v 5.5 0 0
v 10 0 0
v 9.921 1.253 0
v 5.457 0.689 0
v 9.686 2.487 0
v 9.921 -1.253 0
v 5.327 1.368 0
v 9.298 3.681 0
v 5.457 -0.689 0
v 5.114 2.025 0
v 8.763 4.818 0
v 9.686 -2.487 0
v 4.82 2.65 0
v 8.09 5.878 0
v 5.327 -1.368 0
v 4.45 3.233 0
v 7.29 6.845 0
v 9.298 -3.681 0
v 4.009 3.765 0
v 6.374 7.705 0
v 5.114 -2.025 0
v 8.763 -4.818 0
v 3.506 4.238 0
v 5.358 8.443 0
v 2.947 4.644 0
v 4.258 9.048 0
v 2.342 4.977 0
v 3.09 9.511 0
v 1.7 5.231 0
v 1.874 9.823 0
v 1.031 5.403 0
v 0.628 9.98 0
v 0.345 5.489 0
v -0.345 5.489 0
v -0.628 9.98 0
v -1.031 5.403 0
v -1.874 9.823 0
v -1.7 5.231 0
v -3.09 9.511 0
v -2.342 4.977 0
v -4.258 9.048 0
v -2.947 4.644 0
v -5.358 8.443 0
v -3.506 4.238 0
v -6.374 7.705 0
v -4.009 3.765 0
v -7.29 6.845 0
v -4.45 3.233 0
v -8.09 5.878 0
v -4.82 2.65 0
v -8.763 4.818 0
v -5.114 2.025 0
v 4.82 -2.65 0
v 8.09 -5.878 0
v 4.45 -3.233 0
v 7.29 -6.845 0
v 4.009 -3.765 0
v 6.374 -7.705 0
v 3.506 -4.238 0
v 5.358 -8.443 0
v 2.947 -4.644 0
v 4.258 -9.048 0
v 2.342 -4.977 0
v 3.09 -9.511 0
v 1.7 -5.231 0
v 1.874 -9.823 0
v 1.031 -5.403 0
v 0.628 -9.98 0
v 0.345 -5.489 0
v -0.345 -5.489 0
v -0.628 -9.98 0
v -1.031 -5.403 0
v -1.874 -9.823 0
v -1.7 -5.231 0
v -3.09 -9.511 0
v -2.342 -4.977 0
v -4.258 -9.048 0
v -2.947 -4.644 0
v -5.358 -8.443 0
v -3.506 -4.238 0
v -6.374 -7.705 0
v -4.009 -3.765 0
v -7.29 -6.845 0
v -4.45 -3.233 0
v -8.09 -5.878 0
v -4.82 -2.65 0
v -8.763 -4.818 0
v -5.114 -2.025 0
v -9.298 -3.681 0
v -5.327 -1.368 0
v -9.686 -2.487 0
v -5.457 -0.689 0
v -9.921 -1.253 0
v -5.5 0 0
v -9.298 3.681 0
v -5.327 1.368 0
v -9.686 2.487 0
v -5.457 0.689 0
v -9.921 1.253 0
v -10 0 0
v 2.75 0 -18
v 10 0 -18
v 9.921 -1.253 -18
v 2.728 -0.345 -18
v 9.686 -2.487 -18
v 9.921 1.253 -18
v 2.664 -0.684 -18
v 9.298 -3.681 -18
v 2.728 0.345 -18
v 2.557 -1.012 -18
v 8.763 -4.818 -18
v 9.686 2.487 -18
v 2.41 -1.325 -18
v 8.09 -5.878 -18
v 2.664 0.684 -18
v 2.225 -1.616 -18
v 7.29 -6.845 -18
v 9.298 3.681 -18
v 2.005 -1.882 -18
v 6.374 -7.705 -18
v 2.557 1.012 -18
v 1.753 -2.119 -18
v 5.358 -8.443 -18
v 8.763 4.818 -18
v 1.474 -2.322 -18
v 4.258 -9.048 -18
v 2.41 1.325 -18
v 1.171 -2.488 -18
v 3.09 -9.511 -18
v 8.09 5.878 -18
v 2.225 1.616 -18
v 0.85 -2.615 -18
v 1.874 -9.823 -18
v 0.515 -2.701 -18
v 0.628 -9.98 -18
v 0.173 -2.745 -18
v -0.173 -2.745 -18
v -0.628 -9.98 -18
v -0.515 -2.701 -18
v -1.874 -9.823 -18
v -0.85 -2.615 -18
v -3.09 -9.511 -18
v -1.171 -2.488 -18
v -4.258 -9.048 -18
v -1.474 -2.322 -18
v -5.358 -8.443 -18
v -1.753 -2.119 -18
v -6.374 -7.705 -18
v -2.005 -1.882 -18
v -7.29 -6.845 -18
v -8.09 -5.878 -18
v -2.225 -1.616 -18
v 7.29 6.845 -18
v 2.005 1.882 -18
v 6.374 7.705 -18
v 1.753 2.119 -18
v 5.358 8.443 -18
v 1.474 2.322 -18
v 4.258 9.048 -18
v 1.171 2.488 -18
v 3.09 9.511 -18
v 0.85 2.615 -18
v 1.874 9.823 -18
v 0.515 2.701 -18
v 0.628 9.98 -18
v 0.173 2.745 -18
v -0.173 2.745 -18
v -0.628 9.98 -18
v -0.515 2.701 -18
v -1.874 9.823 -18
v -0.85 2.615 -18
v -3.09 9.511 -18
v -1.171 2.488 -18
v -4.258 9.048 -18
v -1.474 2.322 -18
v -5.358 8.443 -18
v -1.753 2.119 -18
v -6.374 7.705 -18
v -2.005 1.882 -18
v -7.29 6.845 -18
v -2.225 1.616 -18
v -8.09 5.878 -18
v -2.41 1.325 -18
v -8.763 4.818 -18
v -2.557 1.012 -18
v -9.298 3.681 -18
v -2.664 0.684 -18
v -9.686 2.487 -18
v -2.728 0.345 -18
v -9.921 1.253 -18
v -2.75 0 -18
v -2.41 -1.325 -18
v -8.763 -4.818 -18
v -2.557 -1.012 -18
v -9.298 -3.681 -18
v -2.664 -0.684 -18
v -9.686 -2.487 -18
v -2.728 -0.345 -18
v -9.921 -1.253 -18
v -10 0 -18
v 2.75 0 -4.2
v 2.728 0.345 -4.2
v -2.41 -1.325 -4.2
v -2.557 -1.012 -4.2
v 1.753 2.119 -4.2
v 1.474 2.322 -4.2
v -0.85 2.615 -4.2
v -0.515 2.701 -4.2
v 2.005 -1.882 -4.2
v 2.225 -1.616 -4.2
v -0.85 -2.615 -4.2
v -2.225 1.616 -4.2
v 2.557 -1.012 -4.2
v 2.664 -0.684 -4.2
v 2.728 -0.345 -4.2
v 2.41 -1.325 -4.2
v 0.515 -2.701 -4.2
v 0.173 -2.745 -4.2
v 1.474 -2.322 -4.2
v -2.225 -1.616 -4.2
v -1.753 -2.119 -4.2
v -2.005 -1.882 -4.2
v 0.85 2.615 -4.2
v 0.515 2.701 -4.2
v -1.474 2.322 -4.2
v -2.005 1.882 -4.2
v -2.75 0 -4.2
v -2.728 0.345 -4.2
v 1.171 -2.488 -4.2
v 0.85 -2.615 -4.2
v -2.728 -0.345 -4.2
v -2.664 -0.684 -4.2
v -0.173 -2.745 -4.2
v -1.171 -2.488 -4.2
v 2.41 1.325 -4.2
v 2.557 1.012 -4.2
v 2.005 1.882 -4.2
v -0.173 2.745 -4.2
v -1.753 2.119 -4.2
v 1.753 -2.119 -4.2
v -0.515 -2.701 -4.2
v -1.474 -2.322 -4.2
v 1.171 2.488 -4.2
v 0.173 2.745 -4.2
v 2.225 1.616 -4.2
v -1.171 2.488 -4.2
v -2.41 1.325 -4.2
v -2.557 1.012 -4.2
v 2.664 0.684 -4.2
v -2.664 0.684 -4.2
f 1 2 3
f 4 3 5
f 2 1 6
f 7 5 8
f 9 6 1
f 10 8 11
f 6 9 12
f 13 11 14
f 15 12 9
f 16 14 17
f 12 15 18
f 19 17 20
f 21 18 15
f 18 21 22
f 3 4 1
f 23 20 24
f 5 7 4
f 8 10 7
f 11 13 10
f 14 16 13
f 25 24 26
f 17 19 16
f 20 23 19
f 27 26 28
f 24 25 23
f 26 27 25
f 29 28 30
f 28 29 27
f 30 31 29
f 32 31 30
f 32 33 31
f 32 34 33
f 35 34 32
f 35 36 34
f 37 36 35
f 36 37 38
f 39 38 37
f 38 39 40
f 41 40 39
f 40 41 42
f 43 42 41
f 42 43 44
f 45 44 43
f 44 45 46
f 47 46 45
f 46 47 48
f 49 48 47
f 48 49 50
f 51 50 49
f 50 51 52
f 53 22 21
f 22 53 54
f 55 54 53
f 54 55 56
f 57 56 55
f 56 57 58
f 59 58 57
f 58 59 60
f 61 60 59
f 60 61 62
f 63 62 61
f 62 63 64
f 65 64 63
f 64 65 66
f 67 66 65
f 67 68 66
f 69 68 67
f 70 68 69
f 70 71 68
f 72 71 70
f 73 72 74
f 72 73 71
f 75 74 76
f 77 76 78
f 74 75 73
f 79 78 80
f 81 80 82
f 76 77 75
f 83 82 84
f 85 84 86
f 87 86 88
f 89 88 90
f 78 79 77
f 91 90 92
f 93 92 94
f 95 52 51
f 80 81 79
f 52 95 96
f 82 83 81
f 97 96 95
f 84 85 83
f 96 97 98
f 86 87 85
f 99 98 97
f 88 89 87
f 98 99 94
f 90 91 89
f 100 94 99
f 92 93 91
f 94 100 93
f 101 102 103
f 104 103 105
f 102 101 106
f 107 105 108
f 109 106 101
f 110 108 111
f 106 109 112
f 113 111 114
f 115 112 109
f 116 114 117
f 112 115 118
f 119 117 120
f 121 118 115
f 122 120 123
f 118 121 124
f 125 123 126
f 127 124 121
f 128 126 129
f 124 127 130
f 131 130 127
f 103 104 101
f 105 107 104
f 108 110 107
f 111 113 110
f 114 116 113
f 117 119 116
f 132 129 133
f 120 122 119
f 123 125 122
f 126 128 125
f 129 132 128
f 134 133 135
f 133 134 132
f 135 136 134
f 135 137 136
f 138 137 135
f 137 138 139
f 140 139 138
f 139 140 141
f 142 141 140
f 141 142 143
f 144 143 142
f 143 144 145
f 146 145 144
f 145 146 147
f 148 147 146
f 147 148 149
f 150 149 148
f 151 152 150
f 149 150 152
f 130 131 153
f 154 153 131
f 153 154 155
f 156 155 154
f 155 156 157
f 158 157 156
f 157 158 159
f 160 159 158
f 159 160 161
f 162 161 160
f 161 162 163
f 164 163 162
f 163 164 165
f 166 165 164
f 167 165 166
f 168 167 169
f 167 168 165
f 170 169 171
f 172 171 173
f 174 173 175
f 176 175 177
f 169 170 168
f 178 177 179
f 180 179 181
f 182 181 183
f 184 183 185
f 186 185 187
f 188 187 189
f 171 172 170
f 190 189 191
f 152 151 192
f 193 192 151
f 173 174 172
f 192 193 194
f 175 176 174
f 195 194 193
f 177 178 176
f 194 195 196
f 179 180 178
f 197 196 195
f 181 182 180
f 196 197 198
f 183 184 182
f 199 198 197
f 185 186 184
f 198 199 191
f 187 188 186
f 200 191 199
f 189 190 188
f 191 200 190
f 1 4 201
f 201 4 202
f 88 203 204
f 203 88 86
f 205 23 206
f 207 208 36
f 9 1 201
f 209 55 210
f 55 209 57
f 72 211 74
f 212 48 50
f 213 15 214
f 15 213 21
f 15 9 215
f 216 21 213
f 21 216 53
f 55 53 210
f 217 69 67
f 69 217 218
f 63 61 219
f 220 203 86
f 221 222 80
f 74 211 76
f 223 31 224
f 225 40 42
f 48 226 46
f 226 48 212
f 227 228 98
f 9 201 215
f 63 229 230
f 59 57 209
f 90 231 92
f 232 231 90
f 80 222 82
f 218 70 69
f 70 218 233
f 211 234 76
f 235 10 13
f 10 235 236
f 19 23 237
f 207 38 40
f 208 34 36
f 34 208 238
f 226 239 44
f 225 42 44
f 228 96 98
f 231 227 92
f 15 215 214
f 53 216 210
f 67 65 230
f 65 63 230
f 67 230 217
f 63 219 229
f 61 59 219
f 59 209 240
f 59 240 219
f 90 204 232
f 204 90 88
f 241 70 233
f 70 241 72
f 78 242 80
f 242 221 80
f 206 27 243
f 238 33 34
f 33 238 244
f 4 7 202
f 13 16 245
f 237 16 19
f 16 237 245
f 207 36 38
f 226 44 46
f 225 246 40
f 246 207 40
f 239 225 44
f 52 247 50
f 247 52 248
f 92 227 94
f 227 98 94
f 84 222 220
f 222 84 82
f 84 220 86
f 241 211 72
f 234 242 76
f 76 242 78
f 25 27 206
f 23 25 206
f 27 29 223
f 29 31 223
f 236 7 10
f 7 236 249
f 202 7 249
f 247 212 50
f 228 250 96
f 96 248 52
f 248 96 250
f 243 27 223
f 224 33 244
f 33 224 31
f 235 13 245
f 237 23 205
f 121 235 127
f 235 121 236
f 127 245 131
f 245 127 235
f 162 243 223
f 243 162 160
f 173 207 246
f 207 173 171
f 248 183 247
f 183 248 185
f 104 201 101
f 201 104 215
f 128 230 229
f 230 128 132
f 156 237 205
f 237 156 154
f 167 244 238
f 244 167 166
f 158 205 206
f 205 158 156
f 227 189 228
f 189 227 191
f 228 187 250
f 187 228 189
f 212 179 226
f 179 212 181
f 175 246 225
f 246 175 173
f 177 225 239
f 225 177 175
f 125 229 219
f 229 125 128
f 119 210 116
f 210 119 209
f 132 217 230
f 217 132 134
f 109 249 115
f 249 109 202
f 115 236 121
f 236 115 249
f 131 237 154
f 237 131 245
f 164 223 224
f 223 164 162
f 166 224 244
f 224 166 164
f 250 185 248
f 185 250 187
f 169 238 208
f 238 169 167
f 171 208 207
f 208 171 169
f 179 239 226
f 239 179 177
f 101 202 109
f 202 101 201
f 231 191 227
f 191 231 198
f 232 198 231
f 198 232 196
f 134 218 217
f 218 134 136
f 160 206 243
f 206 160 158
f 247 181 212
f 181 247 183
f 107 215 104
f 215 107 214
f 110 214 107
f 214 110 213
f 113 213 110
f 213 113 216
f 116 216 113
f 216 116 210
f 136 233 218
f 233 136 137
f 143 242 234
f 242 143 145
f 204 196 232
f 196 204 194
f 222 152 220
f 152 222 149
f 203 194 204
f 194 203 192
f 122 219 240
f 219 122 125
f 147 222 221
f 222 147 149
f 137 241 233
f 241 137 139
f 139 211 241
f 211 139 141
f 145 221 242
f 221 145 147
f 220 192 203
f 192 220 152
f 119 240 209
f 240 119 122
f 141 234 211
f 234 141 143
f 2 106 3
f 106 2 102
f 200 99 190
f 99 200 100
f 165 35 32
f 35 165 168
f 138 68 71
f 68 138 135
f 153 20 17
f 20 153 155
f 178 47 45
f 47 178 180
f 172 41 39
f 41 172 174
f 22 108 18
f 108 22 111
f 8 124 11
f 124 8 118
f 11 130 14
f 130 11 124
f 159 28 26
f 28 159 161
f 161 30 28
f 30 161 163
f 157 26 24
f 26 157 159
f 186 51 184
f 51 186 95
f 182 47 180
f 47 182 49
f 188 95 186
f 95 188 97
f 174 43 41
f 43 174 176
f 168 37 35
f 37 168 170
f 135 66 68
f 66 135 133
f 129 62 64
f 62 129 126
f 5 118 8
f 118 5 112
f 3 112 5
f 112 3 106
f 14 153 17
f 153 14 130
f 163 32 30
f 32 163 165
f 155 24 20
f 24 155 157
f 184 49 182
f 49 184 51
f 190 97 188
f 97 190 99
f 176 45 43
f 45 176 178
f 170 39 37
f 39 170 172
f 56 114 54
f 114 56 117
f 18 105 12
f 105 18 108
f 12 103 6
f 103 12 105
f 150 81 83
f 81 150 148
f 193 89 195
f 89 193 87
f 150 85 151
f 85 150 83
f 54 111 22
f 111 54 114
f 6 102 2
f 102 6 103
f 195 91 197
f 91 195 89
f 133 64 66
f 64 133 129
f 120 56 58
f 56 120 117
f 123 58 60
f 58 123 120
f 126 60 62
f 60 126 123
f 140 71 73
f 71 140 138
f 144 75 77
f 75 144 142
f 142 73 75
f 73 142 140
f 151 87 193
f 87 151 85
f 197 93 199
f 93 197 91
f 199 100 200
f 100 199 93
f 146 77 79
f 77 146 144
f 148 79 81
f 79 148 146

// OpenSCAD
$fn = 50;


difference() {
	union() {
		translate(v = [0, 0, -18.0000000000]) {
			cylinder(h = 18, r = 10.0000000000);
		}
		cylinder(h = 0, r = 16.0000000000);
	}
	union() {
		translate(v = [0, 0, 0]) {
			rotate(a = [0, 0, 0]) {
				difference() {
					union() {
						#translate(v = [0, 0, -18.0000000000]) {
							cylinder(h = 18, r = 2.2500000000);
						}
						#translate(v = [0, 0, -4.2000000000]) {
							cylinder(h = 4.2000000000, r = 10.0000000000, r1 = 2.7500000000, r2 = 5.5000000000);
						}
						#translate(v = [0, 0, -18.0000000000]) {
							cylinder(h = 18, r = 2.7500000000);
						}
						#translate(v = [0, 0, -18.0000000000]) {
							cylinder(h = 18, r = 2.2500000000);
						}
					}
					union();
				}
			}
		}
	}
}
